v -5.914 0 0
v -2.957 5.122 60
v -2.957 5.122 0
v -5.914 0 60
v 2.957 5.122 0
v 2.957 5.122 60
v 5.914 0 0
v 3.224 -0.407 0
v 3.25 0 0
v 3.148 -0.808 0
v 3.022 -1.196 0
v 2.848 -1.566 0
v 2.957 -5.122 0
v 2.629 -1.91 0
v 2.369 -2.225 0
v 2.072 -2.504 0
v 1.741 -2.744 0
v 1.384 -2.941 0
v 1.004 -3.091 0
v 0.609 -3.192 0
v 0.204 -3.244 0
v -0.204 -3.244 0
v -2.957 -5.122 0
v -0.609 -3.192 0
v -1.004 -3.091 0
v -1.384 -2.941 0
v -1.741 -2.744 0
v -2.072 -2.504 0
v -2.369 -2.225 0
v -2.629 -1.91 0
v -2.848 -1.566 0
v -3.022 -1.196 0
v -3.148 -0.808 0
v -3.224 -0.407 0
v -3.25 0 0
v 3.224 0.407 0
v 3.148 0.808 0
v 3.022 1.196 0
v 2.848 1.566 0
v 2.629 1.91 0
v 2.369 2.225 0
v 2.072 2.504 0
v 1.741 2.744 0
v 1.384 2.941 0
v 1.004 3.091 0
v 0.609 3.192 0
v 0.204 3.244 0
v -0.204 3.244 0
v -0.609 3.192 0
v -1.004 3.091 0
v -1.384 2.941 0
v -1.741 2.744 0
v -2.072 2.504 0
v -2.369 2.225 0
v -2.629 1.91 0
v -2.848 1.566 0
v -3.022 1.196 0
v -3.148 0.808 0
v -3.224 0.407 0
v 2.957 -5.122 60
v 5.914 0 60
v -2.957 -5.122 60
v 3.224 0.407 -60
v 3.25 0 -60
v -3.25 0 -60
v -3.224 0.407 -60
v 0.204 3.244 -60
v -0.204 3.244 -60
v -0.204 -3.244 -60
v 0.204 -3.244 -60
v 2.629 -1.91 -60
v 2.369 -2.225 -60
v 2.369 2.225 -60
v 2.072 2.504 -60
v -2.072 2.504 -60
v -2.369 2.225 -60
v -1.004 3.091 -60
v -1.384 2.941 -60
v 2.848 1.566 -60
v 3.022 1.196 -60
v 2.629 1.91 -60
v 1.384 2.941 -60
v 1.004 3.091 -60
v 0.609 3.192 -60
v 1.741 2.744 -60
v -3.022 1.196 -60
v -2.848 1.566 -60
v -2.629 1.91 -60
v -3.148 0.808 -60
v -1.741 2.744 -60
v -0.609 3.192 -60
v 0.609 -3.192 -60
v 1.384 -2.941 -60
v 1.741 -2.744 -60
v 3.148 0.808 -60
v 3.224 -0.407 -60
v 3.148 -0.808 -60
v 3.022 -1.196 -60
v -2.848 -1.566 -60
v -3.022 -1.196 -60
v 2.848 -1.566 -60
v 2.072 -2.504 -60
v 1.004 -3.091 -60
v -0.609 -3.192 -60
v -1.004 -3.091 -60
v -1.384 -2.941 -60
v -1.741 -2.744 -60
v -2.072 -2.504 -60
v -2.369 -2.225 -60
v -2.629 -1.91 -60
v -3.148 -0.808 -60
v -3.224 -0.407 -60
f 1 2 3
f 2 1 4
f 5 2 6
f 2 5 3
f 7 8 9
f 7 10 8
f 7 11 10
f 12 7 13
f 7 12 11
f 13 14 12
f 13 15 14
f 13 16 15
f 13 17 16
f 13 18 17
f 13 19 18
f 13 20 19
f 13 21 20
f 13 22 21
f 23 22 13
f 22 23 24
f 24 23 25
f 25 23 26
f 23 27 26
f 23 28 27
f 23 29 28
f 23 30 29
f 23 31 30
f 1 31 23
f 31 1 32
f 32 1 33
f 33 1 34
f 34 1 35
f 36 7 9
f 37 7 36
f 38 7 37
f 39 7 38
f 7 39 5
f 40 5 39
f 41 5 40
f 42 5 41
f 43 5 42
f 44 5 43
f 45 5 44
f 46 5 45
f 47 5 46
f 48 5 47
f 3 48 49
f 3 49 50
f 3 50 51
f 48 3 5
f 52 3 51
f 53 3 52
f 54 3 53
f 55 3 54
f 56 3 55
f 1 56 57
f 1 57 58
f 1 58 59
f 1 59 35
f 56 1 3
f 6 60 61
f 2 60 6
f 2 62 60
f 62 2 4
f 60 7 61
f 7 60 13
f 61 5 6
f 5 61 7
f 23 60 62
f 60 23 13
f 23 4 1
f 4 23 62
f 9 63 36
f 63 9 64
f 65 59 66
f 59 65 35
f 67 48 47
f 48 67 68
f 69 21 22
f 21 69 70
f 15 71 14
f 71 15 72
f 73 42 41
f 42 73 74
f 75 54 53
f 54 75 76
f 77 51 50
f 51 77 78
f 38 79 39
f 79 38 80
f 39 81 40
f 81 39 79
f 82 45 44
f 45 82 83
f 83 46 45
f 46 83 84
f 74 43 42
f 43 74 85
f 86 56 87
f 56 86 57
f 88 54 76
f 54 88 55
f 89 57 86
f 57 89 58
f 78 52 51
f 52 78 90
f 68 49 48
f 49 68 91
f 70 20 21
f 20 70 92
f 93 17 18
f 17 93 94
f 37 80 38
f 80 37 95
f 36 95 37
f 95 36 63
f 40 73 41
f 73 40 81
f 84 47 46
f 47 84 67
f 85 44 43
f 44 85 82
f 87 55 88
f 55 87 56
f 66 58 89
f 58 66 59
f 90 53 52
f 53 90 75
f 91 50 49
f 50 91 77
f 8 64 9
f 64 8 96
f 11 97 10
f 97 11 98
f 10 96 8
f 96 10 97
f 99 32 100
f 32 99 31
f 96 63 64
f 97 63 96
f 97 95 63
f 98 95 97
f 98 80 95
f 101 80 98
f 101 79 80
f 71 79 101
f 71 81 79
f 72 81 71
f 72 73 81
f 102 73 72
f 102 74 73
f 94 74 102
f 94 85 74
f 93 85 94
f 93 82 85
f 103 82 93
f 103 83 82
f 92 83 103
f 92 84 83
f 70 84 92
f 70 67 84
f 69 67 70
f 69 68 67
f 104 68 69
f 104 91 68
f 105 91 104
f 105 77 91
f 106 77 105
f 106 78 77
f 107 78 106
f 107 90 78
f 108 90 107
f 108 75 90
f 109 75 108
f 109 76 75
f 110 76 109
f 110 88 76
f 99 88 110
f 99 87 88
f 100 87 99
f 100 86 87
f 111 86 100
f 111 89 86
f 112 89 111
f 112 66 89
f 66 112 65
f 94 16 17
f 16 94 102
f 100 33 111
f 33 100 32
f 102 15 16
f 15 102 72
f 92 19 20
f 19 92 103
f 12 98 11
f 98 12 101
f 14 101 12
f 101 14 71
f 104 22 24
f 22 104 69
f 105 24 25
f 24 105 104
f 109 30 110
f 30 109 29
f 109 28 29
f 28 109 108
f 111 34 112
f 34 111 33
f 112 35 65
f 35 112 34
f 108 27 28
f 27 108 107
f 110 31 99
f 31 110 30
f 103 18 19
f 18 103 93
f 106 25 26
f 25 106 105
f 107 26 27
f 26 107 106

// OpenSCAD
$fn = 50;


difference() {
	union() {
		translate(v = [0, 0, 0]) {
			rotate(a = [0, 0, 0]) {
				translate(v = [0, 0, 0]) {
					rotate(a = [0, 0, 0]) {
						linear_extrude(height = 60) {
							polygon(points = [[5.9142500000, 0.0000000000], [2.9571250000, 5.1218907443], [-2.9571250000, 5.1218907443], [-5.9142500000, 0.0000000000], [-2.9571250000, -5.1218907443], [2.9571250000, -5.1218907443]]);
						}
					}
				}
			}
		}
		translate(v = [0, 0, -60]) {
			rotate(a = [0, 0, 0]) {
				cylinder(h = 60, r = 3.2500000000);
			}
		}
	}
	union();
}
